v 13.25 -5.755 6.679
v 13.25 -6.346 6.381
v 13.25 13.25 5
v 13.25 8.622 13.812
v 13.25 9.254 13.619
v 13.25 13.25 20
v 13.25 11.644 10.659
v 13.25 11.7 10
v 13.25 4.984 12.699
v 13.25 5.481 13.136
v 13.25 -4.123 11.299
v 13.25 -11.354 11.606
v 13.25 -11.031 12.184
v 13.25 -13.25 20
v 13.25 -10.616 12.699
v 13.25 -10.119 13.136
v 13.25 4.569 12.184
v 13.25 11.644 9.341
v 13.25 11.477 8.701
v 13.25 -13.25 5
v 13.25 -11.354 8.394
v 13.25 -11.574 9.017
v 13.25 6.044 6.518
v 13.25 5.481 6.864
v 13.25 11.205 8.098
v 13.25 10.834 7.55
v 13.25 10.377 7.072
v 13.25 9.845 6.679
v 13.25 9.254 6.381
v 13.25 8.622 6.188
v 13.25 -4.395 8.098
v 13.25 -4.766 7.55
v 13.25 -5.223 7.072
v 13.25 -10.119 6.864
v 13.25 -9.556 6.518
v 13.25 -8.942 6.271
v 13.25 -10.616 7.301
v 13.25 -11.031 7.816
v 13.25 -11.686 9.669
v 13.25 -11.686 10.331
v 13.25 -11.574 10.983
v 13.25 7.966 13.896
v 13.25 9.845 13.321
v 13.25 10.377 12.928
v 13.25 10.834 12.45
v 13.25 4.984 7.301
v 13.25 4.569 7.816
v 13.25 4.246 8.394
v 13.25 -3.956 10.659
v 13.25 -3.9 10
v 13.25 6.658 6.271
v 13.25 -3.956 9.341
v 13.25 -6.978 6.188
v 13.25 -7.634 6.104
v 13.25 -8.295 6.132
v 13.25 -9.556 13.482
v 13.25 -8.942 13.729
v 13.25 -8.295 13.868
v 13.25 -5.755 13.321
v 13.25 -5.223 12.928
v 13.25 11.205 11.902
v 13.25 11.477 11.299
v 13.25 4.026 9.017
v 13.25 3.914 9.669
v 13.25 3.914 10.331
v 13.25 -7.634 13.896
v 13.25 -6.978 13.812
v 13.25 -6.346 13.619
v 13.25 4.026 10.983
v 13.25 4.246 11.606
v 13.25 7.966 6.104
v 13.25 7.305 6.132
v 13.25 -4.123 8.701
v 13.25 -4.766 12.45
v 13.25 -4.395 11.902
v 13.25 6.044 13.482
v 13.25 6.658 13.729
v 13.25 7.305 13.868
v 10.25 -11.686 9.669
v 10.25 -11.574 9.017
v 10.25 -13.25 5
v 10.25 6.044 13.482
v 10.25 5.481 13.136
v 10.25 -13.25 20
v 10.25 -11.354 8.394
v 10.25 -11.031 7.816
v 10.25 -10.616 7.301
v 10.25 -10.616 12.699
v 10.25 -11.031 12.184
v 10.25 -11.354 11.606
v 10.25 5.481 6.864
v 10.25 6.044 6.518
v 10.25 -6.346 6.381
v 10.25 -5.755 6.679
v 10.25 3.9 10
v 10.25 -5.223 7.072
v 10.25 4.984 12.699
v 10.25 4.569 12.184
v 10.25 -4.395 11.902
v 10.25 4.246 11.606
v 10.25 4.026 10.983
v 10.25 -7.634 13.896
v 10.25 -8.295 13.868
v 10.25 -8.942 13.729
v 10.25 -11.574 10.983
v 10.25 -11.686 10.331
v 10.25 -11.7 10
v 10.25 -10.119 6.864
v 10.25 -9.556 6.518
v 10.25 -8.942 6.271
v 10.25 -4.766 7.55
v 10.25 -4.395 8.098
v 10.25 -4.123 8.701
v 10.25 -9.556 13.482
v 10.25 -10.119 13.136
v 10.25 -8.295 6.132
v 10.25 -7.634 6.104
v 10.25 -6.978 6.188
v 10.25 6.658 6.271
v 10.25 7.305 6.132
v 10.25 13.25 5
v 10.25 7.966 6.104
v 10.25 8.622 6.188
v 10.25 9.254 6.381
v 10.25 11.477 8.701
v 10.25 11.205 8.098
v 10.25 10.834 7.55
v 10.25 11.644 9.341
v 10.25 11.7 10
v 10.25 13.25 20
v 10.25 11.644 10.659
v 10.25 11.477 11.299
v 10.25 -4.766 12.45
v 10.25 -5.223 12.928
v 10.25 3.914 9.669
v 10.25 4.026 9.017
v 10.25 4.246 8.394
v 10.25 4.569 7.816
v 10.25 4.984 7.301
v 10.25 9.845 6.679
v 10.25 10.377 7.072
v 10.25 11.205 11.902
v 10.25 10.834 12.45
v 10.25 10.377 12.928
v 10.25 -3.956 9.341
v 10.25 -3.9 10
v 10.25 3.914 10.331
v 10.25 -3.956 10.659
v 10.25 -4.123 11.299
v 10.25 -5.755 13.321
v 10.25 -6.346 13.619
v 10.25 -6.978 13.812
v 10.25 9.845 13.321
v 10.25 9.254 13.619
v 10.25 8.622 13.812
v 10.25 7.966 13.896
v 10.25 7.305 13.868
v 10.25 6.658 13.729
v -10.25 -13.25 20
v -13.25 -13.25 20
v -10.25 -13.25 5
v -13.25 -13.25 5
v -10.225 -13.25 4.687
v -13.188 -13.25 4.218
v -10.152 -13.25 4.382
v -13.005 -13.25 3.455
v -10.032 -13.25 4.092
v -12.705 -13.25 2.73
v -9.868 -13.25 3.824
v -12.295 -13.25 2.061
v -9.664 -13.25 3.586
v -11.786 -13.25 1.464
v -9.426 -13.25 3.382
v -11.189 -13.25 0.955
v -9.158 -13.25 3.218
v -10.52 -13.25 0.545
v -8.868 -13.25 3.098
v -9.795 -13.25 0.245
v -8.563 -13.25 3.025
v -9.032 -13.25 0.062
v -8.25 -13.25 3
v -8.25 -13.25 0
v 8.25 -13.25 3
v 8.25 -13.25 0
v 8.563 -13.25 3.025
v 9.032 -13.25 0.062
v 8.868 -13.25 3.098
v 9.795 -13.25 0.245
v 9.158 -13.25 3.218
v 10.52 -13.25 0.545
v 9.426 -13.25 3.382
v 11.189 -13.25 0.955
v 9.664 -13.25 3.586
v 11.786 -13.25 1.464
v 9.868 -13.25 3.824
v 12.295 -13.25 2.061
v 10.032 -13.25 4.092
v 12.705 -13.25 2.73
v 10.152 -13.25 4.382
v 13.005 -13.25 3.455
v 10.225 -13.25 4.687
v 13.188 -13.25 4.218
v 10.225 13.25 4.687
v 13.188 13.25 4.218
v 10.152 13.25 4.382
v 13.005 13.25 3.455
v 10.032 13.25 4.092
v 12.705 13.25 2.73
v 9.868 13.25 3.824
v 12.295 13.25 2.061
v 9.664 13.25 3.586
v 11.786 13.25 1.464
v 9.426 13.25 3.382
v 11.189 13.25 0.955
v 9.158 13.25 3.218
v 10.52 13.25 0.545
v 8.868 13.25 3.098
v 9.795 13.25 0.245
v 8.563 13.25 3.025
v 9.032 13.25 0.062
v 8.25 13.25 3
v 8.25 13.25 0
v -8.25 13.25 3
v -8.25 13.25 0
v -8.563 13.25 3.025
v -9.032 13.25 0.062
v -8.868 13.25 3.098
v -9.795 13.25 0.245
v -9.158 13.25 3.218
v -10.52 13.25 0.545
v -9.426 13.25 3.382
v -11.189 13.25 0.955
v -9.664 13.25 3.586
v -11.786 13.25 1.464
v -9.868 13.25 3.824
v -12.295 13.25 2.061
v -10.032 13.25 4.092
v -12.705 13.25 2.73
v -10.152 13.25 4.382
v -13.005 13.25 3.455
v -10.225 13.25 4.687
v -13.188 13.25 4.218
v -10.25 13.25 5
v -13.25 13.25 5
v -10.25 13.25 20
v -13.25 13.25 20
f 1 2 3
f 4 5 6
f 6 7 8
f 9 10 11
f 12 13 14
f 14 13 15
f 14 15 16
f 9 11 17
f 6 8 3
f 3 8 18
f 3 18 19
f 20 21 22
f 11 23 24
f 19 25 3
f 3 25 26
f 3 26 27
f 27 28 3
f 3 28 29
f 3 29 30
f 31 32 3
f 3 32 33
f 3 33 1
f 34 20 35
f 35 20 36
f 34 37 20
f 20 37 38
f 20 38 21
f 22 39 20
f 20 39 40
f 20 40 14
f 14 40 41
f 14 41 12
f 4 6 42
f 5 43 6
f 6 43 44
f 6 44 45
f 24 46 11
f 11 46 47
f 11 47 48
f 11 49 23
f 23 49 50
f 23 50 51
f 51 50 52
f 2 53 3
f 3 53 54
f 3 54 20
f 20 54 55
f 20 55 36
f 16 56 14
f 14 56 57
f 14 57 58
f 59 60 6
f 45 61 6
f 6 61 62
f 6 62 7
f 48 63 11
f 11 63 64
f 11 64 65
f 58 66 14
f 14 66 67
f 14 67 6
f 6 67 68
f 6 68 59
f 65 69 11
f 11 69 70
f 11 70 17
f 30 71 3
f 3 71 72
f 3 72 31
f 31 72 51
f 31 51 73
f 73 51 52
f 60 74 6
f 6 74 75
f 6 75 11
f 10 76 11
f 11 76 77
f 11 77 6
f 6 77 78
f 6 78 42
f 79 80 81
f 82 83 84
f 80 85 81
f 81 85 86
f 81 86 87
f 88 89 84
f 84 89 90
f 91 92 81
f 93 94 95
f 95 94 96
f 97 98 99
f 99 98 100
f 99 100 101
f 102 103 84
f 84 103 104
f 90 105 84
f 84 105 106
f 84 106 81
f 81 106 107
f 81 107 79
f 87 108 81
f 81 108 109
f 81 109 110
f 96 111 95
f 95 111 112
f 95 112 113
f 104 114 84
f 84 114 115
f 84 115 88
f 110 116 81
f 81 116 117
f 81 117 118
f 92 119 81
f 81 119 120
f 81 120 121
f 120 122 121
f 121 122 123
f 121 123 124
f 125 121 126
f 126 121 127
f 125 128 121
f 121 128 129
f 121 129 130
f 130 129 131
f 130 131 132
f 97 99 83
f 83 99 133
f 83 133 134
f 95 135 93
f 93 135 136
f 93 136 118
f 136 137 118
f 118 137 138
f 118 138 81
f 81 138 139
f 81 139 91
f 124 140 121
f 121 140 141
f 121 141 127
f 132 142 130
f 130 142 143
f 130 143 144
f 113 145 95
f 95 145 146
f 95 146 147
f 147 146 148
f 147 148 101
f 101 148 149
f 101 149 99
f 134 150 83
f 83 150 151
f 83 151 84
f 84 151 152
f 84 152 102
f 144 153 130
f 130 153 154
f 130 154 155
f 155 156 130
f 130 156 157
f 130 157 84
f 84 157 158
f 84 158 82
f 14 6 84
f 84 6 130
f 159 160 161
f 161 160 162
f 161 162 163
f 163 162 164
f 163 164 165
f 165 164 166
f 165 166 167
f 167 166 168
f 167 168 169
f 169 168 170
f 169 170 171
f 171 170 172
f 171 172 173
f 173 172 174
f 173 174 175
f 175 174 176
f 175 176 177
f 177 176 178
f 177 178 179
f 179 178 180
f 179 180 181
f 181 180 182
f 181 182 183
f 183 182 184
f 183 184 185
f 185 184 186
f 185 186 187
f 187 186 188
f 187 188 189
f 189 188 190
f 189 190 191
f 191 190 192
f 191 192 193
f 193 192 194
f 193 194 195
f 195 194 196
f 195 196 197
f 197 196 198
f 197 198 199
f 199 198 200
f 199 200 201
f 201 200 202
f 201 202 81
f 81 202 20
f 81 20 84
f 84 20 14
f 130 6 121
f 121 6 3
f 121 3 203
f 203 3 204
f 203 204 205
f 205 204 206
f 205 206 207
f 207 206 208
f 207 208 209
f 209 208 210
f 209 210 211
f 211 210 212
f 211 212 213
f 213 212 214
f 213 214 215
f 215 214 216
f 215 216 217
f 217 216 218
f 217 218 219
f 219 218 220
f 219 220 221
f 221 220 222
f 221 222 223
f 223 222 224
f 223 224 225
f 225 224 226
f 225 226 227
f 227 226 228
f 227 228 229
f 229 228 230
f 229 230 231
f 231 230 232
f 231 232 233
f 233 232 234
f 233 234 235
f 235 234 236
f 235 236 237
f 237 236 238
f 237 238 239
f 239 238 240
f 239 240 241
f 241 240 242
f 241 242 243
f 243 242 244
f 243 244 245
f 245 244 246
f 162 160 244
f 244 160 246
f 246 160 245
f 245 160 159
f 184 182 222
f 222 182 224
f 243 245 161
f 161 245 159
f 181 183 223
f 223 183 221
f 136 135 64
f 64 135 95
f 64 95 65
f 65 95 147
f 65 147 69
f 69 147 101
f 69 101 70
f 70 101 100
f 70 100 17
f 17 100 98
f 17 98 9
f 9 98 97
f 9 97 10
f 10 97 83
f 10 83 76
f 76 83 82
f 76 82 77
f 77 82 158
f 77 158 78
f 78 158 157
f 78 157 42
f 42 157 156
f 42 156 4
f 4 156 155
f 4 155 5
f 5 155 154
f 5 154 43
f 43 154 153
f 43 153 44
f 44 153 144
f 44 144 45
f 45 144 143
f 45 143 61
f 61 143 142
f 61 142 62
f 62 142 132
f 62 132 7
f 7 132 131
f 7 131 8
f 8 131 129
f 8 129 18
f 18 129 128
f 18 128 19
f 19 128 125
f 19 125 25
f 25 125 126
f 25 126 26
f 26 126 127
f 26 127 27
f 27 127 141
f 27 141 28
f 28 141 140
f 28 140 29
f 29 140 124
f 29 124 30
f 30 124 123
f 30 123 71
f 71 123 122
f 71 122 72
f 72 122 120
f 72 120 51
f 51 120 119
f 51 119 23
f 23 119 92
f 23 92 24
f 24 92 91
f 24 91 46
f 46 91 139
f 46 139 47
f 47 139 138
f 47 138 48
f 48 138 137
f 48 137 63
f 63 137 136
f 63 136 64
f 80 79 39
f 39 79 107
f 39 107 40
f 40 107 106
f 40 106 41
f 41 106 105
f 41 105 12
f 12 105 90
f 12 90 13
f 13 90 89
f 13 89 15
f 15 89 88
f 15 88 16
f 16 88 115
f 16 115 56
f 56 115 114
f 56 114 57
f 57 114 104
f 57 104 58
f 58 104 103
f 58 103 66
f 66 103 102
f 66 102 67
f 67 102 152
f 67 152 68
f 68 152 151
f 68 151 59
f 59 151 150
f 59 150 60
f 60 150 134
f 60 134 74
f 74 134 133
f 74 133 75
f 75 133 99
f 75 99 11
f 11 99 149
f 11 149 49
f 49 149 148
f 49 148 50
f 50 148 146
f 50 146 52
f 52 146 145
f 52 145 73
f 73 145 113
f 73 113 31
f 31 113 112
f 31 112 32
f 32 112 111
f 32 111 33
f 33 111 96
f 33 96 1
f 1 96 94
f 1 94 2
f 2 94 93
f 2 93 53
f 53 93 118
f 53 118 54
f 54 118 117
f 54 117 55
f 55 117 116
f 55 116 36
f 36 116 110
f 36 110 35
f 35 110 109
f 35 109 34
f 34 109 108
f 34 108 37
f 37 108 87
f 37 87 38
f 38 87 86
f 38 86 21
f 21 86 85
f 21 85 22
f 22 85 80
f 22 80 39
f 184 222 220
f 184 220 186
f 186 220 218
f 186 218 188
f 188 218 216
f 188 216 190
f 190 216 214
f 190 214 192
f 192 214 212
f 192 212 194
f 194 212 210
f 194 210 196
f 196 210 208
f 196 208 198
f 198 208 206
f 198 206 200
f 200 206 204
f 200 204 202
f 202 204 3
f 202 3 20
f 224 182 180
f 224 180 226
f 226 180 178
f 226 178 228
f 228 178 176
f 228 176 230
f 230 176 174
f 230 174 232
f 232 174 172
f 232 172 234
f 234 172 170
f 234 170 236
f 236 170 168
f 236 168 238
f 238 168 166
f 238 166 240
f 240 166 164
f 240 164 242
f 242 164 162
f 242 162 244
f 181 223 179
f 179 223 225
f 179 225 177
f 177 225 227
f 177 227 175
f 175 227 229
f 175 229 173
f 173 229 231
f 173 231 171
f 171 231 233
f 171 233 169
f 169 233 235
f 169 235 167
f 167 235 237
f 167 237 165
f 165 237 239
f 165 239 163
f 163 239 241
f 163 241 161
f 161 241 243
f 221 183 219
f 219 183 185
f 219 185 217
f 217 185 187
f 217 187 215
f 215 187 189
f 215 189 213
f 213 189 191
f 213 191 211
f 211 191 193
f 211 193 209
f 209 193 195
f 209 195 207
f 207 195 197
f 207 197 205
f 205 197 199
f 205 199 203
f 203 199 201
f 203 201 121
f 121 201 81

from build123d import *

# Parameters (mm, degrees)
SKETCH4_W           = 26.5
SKETCH4_H           = 26.5
BOSS_EXTRUDE2_DEPTH = 20
SHELL1_T            = -3
SKETCH6_R           = 3.9
CUT_EXTRUDE2_DEPTH  = 23.5
FILLET3_R           = 5
FILLET4_R           = 2


with BuildPart() as part:
    # Sketch4 → Boss-Extrude2 (new body)
    with BuildSketch(Plane(origin=(0, 0, 0), x_dir=(0, 1, 0), z_dir=(0, 0, 1))):
        Rectangle(SKETCH4_W, SKETCH4_H)
    extrude(amount=BOSS_EXTRUDE2_DEPTH)

    # Shell1
    shell1_openings = [part.faces().sort_by_distance(p)[0] for p in [
        (0, 0, 20),
        (0, 13.25, 10),
        (0, -13.25, 10),
    ]]
    offset(amount=SHELL1_T, openings=shell1_openings, kind=Kind.INTERSECTION)

    # Sketch6 → Cut-Extrude2 (cut)
    with BuildSketch(Plane.YZ.offset(13.25)):
        with Locations((-7.8, 10)):
            Circle(SKETCH6_R)
        with Locations((7.8, 10)):
            Circle(SKETCH6_R)
    extrude(amount=-CUT_EXTRUDE2_DEPTH, mode=Mode.SUBTRACT)

    # Fillet3
    fillet3_edges = [part.edges().sort_by_distance(p)[0] for p in [
        (-13.25, 0, 0),
        (13.25, 0, 0),
    ]]
    fillet(fillet3_edges, radius=FILLET3_R)

    # Fillet4
    fillet4_edges = [part.edges().sort_by_distance(p)[0] for p in [
        (10.25, 0, 3),
        (-10.25, 0, 3),
    ]]
    fillet(fillet4_edges, radius=FILLET4_R)


solid = part.part
